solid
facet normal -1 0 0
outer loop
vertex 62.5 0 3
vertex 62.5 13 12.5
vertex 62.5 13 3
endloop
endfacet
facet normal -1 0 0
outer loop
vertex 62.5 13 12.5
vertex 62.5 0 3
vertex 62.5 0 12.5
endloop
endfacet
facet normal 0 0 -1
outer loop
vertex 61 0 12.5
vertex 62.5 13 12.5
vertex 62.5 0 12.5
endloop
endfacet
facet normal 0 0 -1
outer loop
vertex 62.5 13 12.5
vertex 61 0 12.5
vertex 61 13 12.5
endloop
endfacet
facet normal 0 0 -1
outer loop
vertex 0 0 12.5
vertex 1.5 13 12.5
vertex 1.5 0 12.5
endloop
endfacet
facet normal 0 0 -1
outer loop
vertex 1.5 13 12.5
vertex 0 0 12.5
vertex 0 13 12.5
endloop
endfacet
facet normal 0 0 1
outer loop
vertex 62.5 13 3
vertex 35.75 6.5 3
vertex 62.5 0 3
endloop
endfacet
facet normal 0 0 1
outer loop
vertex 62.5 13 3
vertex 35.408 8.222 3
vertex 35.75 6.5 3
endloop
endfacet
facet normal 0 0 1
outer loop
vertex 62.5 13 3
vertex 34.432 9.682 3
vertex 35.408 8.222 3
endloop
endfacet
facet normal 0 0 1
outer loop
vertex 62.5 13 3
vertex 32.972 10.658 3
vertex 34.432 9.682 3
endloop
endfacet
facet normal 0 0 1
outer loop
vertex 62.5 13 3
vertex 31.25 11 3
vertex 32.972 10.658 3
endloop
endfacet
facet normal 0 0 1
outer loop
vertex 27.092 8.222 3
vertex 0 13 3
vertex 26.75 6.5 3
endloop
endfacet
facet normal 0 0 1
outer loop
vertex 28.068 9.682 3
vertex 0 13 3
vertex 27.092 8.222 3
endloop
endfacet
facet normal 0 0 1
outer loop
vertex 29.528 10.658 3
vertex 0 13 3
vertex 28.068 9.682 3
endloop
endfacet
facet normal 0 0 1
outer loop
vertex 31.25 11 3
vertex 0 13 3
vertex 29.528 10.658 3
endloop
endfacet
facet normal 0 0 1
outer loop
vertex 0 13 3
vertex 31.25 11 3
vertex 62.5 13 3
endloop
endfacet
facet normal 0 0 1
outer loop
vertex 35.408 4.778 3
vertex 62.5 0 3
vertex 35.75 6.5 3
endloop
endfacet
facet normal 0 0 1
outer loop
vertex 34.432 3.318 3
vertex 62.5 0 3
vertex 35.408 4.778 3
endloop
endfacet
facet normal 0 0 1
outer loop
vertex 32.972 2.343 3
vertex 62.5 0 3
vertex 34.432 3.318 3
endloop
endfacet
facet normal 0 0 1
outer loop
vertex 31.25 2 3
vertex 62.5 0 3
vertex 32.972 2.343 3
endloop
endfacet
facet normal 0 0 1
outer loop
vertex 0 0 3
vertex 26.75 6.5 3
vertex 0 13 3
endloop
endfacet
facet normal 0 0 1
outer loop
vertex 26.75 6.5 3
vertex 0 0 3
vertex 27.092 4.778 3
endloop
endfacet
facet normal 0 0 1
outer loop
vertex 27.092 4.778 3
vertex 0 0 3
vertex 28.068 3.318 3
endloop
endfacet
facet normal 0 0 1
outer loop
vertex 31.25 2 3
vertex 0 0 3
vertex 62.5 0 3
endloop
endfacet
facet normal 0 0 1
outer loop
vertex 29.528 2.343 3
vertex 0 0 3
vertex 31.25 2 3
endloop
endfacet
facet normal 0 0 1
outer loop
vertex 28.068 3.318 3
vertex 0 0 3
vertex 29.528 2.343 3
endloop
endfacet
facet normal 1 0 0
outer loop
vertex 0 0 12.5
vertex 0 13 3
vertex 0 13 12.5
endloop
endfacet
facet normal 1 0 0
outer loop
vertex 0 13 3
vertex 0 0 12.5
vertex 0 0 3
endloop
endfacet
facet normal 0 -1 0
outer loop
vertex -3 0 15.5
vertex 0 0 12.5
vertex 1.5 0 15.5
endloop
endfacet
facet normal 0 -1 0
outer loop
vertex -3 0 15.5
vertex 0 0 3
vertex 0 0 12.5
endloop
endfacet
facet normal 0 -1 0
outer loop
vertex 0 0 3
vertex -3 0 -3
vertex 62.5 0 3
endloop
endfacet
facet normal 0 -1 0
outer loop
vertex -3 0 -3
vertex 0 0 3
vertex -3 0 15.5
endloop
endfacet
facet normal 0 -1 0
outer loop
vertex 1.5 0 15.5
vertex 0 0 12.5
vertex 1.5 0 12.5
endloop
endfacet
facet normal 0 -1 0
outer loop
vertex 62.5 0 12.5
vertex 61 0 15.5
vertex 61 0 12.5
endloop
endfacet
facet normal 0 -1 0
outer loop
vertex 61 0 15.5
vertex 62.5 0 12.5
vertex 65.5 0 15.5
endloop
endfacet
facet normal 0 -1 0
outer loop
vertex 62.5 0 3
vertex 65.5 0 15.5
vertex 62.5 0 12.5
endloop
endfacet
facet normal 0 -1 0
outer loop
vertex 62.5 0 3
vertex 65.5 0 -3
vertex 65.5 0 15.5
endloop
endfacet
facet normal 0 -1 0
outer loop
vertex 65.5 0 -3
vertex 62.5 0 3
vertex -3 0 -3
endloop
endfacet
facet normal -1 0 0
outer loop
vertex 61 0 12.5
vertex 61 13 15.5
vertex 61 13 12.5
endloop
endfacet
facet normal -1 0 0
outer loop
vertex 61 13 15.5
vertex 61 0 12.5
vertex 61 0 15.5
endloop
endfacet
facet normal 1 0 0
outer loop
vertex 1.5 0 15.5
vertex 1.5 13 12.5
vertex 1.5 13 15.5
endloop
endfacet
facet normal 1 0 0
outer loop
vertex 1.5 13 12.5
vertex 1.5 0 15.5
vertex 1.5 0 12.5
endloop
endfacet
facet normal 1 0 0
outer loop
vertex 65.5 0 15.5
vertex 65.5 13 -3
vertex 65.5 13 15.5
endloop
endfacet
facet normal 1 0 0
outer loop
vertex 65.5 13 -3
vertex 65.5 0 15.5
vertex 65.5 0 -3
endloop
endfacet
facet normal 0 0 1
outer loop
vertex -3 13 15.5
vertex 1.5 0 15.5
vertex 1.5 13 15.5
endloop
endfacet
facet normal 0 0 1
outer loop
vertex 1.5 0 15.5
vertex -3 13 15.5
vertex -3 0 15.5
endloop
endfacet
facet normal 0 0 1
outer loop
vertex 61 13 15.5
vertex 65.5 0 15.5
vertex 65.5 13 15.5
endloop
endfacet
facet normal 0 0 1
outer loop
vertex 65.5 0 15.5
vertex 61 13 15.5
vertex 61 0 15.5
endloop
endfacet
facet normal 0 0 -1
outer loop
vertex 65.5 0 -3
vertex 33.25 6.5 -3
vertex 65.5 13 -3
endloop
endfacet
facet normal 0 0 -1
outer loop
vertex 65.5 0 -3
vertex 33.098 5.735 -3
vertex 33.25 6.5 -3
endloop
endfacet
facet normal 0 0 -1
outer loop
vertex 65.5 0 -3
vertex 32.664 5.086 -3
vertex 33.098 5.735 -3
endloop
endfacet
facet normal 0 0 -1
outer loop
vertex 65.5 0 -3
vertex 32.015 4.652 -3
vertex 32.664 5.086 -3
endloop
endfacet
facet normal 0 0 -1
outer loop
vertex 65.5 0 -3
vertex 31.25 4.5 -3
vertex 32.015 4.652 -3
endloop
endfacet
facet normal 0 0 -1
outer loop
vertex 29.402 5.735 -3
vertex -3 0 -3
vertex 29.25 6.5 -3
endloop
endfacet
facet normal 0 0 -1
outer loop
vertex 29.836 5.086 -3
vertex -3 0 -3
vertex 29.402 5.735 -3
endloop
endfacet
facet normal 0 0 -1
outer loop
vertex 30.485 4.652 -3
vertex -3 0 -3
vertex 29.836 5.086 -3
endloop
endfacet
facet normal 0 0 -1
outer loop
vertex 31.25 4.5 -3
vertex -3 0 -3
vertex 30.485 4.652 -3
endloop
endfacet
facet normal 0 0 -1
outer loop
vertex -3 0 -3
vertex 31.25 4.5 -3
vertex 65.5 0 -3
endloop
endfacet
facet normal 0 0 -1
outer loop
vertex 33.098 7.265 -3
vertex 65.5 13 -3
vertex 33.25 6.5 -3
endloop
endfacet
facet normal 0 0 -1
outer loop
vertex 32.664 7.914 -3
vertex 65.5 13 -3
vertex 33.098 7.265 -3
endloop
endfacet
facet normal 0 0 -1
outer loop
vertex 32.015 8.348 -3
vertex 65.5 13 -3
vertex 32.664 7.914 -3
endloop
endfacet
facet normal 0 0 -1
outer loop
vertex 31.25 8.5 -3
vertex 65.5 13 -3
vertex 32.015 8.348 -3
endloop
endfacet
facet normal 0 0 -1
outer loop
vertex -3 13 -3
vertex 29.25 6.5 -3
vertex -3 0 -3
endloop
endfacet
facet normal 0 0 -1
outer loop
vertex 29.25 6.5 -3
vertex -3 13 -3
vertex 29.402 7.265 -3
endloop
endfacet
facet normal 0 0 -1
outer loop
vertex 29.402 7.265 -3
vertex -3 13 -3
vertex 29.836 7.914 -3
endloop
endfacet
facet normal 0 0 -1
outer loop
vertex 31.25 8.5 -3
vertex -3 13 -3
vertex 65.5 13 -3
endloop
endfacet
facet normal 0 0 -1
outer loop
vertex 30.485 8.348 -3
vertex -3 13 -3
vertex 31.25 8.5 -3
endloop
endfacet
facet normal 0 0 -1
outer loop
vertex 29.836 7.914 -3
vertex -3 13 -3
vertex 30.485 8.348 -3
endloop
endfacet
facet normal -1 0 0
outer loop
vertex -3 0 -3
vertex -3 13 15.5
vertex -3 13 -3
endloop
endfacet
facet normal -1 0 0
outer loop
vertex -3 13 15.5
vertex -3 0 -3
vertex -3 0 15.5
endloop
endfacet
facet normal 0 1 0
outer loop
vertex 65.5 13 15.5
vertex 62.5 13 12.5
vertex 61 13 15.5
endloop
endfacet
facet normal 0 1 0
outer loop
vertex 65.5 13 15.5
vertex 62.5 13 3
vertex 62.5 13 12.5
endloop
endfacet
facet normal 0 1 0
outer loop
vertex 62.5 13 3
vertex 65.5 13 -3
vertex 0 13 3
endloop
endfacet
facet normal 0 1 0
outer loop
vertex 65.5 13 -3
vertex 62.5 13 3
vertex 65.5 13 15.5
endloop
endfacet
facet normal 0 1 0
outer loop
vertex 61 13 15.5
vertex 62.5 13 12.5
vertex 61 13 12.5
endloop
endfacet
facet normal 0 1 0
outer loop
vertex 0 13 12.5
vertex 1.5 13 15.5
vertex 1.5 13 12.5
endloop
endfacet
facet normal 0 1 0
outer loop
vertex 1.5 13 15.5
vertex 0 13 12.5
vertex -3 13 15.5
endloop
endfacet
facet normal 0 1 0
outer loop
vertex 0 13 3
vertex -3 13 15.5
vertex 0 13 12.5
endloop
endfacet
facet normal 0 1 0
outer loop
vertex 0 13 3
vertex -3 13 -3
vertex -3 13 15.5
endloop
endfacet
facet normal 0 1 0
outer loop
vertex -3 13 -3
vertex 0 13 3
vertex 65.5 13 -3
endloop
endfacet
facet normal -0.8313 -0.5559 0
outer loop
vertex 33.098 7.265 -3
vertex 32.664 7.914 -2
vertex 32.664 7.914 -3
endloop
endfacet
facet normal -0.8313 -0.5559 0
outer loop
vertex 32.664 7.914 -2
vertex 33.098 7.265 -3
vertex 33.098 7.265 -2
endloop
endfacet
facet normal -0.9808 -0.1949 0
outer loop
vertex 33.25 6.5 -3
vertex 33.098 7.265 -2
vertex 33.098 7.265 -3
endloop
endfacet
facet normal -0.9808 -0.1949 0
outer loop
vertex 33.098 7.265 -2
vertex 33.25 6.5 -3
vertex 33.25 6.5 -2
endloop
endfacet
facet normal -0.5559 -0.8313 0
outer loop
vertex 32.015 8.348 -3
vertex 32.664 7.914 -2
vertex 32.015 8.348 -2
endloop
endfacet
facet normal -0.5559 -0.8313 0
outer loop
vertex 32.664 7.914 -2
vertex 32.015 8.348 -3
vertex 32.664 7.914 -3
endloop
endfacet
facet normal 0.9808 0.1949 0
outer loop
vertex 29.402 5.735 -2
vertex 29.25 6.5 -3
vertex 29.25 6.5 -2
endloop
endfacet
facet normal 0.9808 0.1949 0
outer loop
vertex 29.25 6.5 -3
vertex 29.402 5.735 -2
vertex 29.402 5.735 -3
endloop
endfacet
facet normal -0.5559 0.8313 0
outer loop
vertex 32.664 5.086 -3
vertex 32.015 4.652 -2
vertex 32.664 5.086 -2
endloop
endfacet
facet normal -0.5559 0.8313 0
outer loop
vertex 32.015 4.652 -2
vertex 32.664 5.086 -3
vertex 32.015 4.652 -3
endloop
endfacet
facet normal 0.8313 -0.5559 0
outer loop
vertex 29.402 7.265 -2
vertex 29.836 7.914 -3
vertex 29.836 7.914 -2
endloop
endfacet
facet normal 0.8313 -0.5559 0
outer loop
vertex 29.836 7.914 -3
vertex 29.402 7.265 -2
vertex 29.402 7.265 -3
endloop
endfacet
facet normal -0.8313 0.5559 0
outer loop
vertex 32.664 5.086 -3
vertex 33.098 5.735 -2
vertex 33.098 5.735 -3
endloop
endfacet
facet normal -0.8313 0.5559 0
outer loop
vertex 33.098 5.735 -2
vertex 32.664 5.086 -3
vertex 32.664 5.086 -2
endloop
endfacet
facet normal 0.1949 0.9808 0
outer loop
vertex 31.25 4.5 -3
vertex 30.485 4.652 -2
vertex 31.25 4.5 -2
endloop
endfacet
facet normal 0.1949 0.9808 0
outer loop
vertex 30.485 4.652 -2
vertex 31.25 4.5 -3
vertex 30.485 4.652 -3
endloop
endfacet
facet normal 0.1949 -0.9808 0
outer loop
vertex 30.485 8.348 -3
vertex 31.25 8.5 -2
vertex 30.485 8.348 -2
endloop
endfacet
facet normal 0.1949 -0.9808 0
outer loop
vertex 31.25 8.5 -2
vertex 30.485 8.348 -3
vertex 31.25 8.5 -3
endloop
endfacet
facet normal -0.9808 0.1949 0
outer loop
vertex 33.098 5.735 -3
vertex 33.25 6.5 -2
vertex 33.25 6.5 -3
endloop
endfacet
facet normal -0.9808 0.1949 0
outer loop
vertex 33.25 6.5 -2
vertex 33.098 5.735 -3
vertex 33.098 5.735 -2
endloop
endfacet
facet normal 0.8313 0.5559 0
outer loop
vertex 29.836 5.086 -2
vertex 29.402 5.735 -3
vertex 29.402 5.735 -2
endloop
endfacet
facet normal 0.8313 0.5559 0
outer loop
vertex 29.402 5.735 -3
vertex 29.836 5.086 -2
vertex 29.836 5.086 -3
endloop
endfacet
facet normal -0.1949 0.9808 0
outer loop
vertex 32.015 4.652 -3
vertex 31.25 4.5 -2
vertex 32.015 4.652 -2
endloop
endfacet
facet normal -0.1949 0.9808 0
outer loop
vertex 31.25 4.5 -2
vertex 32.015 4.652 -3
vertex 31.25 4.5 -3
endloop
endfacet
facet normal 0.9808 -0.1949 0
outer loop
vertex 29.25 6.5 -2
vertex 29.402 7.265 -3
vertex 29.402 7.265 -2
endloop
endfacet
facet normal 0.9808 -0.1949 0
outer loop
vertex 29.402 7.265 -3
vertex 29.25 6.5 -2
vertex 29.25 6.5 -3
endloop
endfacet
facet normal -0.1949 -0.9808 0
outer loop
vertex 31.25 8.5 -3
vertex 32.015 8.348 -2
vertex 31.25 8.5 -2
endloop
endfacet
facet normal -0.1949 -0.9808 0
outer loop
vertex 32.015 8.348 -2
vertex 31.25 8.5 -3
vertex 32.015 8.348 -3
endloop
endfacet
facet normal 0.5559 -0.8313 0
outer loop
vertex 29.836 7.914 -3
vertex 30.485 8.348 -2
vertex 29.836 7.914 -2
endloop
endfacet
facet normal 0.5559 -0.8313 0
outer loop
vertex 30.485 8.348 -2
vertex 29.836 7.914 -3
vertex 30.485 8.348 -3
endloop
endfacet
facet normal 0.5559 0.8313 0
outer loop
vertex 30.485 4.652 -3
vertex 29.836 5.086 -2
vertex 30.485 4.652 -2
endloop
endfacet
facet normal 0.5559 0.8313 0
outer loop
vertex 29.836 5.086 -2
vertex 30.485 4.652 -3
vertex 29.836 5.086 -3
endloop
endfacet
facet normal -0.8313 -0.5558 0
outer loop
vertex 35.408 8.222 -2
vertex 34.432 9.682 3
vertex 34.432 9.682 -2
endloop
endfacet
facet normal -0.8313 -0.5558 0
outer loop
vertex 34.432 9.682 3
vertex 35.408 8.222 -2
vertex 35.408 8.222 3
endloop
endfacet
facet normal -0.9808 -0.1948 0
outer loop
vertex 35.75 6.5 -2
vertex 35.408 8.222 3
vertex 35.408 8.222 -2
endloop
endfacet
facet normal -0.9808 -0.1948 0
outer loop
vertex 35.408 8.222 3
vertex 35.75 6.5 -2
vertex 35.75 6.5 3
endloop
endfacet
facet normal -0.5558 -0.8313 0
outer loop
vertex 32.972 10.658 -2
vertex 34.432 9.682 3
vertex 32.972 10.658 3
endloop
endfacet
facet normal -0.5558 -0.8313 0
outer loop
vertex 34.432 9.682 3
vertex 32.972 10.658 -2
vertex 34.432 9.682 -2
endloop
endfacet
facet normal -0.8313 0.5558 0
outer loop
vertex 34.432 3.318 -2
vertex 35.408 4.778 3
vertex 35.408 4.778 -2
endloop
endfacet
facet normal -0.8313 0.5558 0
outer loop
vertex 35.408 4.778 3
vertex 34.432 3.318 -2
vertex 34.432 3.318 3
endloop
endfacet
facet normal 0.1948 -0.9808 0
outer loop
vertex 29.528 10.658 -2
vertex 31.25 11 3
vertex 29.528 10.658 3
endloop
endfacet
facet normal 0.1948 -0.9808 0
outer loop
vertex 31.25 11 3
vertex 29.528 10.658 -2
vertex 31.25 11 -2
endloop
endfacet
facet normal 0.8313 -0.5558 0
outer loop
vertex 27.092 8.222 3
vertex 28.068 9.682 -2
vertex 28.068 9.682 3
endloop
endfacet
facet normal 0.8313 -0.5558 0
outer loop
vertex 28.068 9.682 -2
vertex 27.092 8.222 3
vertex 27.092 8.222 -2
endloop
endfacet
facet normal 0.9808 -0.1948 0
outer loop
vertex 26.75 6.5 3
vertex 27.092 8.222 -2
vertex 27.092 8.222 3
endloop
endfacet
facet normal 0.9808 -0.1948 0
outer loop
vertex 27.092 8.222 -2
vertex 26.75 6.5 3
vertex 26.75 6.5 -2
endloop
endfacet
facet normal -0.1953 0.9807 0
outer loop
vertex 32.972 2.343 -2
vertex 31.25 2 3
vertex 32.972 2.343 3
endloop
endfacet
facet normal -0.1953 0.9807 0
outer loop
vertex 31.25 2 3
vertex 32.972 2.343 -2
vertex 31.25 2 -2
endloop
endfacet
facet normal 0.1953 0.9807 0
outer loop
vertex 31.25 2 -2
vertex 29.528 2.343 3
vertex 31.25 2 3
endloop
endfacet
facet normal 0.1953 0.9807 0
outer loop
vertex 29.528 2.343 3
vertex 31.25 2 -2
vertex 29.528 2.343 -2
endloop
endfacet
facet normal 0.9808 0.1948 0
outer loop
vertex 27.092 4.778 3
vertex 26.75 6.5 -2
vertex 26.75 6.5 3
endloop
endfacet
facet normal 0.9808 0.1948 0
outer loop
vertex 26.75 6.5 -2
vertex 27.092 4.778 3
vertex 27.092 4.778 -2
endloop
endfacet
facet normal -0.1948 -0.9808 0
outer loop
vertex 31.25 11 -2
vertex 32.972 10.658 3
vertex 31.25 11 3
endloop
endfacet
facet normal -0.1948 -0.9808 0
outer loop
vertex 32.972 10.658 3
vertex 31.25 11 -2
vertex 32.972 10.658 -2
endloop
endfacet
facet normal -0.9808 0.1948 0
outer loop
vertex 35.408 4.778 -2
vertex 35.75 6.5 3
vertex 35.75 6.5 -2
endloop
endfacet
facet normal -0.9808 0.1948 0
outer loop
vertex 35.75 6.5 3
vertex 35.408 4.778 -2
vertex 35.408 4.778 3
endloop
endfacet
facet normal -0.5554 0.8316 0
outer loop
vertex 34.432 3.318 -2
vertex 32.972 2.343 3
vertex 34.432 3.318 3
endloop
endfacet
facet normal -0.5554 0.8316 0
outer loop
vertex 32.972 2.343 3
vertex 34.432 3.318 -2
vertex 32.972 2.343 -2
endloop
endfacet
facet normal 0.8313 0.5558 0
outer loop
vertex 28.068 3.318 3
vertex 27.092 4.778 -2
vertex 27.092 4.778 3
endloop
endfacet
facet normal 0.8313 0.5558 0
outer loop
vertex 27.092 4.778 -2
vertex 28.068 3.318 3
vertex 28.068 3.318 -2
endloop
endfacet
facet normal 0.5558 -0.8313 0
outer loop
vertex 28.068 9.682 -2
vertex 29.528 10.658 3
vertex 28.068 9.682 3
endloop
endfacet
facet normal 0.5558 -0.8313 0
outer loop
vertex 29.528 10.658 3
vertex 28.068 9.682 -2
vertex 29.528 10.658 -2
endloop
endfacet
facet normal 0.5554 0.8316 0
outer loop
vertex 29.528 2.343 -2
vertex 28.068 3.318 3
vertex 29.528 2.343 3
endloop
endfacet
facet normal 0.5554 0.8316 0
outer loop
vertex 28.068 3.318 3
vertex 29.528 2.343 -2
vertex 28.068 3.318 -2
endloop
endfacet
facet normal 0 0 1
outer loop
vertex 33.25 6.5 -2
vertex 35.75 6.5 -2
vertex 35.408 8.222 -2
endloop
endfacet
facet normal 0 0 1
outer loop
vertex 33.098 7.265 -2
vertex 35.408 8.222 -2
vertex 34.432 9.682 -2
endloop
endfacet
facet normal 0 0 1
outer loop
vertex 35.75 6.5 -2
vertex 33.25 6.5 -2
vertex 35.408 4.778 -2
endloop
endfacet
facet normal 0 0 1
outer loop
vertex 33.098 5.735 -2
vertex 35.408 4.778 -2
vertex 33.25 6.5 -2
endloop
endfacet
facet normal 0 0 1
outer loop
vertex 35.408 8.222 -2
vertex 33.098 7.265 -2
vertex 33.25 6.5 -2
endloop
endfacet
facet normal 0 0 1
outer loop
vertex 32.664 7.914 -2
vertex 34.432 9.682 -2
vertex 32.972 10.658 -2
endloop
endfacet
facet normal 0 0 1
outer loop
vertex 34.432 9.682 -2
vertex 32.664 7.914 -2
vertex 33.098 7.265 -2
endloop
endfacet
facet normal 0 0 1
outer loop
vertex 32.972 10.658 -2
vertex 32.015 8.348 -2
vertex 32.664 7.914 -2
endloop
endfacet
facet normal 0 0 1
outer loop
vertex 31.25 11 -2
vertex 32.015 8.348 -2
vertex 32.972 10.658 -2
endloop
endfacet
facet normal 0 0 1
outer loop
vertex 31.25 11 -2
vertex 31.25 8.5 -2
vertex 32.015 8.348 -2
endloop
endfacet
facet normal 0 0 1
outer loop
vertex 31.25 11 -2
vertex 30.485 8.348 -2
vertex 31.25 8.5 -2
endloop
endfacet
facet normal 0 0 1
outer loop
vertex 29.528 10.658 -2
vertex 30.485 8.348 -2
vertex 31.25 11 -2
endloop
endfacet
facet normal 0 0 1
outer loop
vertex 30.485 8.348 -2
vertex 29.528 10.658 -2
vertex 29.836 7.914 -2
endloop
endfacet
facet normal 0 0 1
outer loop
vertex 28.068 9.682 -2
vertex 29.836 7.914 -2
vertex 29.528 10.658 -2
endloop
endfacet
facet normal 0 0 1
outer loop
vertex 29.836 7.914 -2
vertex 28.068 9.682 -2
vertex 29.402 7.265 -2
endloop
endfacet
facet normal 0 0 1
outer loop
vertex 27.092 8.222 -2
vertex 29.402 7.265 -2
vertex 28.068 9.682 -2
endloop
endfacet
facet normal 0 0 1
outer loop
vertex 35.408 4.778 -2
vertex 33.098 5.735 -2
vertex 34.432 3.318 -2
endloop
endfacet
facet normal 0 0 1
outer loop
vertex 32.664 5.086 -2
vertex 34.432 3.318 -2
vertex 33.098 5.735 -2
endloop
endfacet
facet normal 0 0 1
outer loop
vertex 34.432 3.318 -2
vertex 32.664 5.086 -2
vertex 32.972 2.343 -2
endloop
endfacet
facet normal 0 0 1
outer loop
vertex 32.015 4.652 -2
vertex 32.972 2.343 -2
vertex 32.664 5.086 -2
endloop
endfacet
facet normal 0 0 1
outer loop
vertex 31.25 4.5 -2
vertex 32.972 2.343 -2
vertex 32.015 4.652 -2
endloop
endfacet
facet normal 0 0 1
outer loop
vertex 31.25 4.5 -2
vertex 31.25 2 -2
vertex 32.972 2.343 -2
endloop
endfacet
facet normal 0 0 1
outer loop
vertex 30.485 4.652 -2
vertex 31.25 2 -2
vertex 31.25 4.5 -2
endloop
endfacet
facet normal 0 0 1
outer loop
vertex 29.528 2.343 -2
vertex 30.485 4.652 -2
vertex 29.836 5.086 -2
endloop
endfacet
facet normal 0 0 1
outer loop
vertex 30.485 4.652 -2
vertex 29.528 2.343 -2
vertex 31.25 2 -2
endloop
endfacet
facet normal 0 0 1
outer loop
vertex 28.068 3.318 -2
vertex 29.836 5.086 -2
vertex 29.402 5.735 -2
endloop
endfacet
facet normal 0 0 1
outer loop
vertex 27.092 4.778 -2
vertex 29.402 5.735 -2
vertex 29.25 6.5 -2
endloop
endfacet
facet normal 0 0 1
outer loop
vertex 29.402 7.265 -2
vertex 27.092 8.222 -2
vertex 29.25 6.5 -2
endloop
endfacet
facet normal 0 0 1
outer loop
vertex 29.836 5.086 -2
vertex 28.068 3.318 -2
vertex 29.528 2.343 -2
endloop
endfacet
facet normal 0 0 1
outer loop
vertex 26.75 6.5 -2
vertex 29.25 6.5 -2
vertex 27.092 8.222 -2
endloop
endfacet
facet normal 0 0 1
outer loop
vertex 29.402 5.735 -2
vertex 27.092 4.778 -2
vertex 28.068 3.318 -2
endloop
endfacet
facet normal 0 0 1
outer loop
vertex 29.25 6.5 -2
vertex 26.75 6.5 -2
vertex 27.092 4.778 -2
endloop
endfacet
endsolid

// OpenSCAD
// Global Constants
D = 0.125;
D4 = D * 4;
// Input Parameters
lampWidth1 = 62;
lampWidth2 = 59;
clampWidth = 13;

// Selected module call
clamp(lampWidth1, lampWidth2, clampWidth, false);

module clamp(lampW1, lampW2, clampW, cableHoleNeeded) {
    c_thick = 3;
    LAMP_LEN = 100;
    L_W = lampW1 + D4;
    L_H = 9 + D4;
    L2_W = lampW2 + D4;
    L2_H = 16 + D4;
    cableHeight = 3;
    cableWidth = 6;
    
    difference() {
        // clamp
        translate([0 - c_thick, 0, - c_thick]) 
            cube([L_W + c_thick * 2, clampW, L_H + c_thick * 2 + cableHeight]);
        // lamp
        translate([0, 0, cableHeight]) 
            union() {
                cube([L_W, LAMP_LEN, L_H]);
                translate([(L_W-L2_W)/2, 0, L_H]) 
                    cube([L2_W, LAMP_LEN, L2_H]);
            }
        // thin bolt hole   
        translate([L_W / 2, clampW / 2, - 10]) 
            cylinder(h = 30, r = 2, $fn = 16);
        // thick bolt hole
        translate([L_W / 2, clampW / 2, - 2]) 
            cylinder(h = 30, r = 4.5, $fn = 16);
        // hole for cable
        if (cableHoleNeeded) {
            translate([(L_W + c_thick * 2)/3 - cableWidth, 0, - c_thick]) 
                cube([cableWidth, clampWidth, cableHeight]);
        }
        

    }
}
